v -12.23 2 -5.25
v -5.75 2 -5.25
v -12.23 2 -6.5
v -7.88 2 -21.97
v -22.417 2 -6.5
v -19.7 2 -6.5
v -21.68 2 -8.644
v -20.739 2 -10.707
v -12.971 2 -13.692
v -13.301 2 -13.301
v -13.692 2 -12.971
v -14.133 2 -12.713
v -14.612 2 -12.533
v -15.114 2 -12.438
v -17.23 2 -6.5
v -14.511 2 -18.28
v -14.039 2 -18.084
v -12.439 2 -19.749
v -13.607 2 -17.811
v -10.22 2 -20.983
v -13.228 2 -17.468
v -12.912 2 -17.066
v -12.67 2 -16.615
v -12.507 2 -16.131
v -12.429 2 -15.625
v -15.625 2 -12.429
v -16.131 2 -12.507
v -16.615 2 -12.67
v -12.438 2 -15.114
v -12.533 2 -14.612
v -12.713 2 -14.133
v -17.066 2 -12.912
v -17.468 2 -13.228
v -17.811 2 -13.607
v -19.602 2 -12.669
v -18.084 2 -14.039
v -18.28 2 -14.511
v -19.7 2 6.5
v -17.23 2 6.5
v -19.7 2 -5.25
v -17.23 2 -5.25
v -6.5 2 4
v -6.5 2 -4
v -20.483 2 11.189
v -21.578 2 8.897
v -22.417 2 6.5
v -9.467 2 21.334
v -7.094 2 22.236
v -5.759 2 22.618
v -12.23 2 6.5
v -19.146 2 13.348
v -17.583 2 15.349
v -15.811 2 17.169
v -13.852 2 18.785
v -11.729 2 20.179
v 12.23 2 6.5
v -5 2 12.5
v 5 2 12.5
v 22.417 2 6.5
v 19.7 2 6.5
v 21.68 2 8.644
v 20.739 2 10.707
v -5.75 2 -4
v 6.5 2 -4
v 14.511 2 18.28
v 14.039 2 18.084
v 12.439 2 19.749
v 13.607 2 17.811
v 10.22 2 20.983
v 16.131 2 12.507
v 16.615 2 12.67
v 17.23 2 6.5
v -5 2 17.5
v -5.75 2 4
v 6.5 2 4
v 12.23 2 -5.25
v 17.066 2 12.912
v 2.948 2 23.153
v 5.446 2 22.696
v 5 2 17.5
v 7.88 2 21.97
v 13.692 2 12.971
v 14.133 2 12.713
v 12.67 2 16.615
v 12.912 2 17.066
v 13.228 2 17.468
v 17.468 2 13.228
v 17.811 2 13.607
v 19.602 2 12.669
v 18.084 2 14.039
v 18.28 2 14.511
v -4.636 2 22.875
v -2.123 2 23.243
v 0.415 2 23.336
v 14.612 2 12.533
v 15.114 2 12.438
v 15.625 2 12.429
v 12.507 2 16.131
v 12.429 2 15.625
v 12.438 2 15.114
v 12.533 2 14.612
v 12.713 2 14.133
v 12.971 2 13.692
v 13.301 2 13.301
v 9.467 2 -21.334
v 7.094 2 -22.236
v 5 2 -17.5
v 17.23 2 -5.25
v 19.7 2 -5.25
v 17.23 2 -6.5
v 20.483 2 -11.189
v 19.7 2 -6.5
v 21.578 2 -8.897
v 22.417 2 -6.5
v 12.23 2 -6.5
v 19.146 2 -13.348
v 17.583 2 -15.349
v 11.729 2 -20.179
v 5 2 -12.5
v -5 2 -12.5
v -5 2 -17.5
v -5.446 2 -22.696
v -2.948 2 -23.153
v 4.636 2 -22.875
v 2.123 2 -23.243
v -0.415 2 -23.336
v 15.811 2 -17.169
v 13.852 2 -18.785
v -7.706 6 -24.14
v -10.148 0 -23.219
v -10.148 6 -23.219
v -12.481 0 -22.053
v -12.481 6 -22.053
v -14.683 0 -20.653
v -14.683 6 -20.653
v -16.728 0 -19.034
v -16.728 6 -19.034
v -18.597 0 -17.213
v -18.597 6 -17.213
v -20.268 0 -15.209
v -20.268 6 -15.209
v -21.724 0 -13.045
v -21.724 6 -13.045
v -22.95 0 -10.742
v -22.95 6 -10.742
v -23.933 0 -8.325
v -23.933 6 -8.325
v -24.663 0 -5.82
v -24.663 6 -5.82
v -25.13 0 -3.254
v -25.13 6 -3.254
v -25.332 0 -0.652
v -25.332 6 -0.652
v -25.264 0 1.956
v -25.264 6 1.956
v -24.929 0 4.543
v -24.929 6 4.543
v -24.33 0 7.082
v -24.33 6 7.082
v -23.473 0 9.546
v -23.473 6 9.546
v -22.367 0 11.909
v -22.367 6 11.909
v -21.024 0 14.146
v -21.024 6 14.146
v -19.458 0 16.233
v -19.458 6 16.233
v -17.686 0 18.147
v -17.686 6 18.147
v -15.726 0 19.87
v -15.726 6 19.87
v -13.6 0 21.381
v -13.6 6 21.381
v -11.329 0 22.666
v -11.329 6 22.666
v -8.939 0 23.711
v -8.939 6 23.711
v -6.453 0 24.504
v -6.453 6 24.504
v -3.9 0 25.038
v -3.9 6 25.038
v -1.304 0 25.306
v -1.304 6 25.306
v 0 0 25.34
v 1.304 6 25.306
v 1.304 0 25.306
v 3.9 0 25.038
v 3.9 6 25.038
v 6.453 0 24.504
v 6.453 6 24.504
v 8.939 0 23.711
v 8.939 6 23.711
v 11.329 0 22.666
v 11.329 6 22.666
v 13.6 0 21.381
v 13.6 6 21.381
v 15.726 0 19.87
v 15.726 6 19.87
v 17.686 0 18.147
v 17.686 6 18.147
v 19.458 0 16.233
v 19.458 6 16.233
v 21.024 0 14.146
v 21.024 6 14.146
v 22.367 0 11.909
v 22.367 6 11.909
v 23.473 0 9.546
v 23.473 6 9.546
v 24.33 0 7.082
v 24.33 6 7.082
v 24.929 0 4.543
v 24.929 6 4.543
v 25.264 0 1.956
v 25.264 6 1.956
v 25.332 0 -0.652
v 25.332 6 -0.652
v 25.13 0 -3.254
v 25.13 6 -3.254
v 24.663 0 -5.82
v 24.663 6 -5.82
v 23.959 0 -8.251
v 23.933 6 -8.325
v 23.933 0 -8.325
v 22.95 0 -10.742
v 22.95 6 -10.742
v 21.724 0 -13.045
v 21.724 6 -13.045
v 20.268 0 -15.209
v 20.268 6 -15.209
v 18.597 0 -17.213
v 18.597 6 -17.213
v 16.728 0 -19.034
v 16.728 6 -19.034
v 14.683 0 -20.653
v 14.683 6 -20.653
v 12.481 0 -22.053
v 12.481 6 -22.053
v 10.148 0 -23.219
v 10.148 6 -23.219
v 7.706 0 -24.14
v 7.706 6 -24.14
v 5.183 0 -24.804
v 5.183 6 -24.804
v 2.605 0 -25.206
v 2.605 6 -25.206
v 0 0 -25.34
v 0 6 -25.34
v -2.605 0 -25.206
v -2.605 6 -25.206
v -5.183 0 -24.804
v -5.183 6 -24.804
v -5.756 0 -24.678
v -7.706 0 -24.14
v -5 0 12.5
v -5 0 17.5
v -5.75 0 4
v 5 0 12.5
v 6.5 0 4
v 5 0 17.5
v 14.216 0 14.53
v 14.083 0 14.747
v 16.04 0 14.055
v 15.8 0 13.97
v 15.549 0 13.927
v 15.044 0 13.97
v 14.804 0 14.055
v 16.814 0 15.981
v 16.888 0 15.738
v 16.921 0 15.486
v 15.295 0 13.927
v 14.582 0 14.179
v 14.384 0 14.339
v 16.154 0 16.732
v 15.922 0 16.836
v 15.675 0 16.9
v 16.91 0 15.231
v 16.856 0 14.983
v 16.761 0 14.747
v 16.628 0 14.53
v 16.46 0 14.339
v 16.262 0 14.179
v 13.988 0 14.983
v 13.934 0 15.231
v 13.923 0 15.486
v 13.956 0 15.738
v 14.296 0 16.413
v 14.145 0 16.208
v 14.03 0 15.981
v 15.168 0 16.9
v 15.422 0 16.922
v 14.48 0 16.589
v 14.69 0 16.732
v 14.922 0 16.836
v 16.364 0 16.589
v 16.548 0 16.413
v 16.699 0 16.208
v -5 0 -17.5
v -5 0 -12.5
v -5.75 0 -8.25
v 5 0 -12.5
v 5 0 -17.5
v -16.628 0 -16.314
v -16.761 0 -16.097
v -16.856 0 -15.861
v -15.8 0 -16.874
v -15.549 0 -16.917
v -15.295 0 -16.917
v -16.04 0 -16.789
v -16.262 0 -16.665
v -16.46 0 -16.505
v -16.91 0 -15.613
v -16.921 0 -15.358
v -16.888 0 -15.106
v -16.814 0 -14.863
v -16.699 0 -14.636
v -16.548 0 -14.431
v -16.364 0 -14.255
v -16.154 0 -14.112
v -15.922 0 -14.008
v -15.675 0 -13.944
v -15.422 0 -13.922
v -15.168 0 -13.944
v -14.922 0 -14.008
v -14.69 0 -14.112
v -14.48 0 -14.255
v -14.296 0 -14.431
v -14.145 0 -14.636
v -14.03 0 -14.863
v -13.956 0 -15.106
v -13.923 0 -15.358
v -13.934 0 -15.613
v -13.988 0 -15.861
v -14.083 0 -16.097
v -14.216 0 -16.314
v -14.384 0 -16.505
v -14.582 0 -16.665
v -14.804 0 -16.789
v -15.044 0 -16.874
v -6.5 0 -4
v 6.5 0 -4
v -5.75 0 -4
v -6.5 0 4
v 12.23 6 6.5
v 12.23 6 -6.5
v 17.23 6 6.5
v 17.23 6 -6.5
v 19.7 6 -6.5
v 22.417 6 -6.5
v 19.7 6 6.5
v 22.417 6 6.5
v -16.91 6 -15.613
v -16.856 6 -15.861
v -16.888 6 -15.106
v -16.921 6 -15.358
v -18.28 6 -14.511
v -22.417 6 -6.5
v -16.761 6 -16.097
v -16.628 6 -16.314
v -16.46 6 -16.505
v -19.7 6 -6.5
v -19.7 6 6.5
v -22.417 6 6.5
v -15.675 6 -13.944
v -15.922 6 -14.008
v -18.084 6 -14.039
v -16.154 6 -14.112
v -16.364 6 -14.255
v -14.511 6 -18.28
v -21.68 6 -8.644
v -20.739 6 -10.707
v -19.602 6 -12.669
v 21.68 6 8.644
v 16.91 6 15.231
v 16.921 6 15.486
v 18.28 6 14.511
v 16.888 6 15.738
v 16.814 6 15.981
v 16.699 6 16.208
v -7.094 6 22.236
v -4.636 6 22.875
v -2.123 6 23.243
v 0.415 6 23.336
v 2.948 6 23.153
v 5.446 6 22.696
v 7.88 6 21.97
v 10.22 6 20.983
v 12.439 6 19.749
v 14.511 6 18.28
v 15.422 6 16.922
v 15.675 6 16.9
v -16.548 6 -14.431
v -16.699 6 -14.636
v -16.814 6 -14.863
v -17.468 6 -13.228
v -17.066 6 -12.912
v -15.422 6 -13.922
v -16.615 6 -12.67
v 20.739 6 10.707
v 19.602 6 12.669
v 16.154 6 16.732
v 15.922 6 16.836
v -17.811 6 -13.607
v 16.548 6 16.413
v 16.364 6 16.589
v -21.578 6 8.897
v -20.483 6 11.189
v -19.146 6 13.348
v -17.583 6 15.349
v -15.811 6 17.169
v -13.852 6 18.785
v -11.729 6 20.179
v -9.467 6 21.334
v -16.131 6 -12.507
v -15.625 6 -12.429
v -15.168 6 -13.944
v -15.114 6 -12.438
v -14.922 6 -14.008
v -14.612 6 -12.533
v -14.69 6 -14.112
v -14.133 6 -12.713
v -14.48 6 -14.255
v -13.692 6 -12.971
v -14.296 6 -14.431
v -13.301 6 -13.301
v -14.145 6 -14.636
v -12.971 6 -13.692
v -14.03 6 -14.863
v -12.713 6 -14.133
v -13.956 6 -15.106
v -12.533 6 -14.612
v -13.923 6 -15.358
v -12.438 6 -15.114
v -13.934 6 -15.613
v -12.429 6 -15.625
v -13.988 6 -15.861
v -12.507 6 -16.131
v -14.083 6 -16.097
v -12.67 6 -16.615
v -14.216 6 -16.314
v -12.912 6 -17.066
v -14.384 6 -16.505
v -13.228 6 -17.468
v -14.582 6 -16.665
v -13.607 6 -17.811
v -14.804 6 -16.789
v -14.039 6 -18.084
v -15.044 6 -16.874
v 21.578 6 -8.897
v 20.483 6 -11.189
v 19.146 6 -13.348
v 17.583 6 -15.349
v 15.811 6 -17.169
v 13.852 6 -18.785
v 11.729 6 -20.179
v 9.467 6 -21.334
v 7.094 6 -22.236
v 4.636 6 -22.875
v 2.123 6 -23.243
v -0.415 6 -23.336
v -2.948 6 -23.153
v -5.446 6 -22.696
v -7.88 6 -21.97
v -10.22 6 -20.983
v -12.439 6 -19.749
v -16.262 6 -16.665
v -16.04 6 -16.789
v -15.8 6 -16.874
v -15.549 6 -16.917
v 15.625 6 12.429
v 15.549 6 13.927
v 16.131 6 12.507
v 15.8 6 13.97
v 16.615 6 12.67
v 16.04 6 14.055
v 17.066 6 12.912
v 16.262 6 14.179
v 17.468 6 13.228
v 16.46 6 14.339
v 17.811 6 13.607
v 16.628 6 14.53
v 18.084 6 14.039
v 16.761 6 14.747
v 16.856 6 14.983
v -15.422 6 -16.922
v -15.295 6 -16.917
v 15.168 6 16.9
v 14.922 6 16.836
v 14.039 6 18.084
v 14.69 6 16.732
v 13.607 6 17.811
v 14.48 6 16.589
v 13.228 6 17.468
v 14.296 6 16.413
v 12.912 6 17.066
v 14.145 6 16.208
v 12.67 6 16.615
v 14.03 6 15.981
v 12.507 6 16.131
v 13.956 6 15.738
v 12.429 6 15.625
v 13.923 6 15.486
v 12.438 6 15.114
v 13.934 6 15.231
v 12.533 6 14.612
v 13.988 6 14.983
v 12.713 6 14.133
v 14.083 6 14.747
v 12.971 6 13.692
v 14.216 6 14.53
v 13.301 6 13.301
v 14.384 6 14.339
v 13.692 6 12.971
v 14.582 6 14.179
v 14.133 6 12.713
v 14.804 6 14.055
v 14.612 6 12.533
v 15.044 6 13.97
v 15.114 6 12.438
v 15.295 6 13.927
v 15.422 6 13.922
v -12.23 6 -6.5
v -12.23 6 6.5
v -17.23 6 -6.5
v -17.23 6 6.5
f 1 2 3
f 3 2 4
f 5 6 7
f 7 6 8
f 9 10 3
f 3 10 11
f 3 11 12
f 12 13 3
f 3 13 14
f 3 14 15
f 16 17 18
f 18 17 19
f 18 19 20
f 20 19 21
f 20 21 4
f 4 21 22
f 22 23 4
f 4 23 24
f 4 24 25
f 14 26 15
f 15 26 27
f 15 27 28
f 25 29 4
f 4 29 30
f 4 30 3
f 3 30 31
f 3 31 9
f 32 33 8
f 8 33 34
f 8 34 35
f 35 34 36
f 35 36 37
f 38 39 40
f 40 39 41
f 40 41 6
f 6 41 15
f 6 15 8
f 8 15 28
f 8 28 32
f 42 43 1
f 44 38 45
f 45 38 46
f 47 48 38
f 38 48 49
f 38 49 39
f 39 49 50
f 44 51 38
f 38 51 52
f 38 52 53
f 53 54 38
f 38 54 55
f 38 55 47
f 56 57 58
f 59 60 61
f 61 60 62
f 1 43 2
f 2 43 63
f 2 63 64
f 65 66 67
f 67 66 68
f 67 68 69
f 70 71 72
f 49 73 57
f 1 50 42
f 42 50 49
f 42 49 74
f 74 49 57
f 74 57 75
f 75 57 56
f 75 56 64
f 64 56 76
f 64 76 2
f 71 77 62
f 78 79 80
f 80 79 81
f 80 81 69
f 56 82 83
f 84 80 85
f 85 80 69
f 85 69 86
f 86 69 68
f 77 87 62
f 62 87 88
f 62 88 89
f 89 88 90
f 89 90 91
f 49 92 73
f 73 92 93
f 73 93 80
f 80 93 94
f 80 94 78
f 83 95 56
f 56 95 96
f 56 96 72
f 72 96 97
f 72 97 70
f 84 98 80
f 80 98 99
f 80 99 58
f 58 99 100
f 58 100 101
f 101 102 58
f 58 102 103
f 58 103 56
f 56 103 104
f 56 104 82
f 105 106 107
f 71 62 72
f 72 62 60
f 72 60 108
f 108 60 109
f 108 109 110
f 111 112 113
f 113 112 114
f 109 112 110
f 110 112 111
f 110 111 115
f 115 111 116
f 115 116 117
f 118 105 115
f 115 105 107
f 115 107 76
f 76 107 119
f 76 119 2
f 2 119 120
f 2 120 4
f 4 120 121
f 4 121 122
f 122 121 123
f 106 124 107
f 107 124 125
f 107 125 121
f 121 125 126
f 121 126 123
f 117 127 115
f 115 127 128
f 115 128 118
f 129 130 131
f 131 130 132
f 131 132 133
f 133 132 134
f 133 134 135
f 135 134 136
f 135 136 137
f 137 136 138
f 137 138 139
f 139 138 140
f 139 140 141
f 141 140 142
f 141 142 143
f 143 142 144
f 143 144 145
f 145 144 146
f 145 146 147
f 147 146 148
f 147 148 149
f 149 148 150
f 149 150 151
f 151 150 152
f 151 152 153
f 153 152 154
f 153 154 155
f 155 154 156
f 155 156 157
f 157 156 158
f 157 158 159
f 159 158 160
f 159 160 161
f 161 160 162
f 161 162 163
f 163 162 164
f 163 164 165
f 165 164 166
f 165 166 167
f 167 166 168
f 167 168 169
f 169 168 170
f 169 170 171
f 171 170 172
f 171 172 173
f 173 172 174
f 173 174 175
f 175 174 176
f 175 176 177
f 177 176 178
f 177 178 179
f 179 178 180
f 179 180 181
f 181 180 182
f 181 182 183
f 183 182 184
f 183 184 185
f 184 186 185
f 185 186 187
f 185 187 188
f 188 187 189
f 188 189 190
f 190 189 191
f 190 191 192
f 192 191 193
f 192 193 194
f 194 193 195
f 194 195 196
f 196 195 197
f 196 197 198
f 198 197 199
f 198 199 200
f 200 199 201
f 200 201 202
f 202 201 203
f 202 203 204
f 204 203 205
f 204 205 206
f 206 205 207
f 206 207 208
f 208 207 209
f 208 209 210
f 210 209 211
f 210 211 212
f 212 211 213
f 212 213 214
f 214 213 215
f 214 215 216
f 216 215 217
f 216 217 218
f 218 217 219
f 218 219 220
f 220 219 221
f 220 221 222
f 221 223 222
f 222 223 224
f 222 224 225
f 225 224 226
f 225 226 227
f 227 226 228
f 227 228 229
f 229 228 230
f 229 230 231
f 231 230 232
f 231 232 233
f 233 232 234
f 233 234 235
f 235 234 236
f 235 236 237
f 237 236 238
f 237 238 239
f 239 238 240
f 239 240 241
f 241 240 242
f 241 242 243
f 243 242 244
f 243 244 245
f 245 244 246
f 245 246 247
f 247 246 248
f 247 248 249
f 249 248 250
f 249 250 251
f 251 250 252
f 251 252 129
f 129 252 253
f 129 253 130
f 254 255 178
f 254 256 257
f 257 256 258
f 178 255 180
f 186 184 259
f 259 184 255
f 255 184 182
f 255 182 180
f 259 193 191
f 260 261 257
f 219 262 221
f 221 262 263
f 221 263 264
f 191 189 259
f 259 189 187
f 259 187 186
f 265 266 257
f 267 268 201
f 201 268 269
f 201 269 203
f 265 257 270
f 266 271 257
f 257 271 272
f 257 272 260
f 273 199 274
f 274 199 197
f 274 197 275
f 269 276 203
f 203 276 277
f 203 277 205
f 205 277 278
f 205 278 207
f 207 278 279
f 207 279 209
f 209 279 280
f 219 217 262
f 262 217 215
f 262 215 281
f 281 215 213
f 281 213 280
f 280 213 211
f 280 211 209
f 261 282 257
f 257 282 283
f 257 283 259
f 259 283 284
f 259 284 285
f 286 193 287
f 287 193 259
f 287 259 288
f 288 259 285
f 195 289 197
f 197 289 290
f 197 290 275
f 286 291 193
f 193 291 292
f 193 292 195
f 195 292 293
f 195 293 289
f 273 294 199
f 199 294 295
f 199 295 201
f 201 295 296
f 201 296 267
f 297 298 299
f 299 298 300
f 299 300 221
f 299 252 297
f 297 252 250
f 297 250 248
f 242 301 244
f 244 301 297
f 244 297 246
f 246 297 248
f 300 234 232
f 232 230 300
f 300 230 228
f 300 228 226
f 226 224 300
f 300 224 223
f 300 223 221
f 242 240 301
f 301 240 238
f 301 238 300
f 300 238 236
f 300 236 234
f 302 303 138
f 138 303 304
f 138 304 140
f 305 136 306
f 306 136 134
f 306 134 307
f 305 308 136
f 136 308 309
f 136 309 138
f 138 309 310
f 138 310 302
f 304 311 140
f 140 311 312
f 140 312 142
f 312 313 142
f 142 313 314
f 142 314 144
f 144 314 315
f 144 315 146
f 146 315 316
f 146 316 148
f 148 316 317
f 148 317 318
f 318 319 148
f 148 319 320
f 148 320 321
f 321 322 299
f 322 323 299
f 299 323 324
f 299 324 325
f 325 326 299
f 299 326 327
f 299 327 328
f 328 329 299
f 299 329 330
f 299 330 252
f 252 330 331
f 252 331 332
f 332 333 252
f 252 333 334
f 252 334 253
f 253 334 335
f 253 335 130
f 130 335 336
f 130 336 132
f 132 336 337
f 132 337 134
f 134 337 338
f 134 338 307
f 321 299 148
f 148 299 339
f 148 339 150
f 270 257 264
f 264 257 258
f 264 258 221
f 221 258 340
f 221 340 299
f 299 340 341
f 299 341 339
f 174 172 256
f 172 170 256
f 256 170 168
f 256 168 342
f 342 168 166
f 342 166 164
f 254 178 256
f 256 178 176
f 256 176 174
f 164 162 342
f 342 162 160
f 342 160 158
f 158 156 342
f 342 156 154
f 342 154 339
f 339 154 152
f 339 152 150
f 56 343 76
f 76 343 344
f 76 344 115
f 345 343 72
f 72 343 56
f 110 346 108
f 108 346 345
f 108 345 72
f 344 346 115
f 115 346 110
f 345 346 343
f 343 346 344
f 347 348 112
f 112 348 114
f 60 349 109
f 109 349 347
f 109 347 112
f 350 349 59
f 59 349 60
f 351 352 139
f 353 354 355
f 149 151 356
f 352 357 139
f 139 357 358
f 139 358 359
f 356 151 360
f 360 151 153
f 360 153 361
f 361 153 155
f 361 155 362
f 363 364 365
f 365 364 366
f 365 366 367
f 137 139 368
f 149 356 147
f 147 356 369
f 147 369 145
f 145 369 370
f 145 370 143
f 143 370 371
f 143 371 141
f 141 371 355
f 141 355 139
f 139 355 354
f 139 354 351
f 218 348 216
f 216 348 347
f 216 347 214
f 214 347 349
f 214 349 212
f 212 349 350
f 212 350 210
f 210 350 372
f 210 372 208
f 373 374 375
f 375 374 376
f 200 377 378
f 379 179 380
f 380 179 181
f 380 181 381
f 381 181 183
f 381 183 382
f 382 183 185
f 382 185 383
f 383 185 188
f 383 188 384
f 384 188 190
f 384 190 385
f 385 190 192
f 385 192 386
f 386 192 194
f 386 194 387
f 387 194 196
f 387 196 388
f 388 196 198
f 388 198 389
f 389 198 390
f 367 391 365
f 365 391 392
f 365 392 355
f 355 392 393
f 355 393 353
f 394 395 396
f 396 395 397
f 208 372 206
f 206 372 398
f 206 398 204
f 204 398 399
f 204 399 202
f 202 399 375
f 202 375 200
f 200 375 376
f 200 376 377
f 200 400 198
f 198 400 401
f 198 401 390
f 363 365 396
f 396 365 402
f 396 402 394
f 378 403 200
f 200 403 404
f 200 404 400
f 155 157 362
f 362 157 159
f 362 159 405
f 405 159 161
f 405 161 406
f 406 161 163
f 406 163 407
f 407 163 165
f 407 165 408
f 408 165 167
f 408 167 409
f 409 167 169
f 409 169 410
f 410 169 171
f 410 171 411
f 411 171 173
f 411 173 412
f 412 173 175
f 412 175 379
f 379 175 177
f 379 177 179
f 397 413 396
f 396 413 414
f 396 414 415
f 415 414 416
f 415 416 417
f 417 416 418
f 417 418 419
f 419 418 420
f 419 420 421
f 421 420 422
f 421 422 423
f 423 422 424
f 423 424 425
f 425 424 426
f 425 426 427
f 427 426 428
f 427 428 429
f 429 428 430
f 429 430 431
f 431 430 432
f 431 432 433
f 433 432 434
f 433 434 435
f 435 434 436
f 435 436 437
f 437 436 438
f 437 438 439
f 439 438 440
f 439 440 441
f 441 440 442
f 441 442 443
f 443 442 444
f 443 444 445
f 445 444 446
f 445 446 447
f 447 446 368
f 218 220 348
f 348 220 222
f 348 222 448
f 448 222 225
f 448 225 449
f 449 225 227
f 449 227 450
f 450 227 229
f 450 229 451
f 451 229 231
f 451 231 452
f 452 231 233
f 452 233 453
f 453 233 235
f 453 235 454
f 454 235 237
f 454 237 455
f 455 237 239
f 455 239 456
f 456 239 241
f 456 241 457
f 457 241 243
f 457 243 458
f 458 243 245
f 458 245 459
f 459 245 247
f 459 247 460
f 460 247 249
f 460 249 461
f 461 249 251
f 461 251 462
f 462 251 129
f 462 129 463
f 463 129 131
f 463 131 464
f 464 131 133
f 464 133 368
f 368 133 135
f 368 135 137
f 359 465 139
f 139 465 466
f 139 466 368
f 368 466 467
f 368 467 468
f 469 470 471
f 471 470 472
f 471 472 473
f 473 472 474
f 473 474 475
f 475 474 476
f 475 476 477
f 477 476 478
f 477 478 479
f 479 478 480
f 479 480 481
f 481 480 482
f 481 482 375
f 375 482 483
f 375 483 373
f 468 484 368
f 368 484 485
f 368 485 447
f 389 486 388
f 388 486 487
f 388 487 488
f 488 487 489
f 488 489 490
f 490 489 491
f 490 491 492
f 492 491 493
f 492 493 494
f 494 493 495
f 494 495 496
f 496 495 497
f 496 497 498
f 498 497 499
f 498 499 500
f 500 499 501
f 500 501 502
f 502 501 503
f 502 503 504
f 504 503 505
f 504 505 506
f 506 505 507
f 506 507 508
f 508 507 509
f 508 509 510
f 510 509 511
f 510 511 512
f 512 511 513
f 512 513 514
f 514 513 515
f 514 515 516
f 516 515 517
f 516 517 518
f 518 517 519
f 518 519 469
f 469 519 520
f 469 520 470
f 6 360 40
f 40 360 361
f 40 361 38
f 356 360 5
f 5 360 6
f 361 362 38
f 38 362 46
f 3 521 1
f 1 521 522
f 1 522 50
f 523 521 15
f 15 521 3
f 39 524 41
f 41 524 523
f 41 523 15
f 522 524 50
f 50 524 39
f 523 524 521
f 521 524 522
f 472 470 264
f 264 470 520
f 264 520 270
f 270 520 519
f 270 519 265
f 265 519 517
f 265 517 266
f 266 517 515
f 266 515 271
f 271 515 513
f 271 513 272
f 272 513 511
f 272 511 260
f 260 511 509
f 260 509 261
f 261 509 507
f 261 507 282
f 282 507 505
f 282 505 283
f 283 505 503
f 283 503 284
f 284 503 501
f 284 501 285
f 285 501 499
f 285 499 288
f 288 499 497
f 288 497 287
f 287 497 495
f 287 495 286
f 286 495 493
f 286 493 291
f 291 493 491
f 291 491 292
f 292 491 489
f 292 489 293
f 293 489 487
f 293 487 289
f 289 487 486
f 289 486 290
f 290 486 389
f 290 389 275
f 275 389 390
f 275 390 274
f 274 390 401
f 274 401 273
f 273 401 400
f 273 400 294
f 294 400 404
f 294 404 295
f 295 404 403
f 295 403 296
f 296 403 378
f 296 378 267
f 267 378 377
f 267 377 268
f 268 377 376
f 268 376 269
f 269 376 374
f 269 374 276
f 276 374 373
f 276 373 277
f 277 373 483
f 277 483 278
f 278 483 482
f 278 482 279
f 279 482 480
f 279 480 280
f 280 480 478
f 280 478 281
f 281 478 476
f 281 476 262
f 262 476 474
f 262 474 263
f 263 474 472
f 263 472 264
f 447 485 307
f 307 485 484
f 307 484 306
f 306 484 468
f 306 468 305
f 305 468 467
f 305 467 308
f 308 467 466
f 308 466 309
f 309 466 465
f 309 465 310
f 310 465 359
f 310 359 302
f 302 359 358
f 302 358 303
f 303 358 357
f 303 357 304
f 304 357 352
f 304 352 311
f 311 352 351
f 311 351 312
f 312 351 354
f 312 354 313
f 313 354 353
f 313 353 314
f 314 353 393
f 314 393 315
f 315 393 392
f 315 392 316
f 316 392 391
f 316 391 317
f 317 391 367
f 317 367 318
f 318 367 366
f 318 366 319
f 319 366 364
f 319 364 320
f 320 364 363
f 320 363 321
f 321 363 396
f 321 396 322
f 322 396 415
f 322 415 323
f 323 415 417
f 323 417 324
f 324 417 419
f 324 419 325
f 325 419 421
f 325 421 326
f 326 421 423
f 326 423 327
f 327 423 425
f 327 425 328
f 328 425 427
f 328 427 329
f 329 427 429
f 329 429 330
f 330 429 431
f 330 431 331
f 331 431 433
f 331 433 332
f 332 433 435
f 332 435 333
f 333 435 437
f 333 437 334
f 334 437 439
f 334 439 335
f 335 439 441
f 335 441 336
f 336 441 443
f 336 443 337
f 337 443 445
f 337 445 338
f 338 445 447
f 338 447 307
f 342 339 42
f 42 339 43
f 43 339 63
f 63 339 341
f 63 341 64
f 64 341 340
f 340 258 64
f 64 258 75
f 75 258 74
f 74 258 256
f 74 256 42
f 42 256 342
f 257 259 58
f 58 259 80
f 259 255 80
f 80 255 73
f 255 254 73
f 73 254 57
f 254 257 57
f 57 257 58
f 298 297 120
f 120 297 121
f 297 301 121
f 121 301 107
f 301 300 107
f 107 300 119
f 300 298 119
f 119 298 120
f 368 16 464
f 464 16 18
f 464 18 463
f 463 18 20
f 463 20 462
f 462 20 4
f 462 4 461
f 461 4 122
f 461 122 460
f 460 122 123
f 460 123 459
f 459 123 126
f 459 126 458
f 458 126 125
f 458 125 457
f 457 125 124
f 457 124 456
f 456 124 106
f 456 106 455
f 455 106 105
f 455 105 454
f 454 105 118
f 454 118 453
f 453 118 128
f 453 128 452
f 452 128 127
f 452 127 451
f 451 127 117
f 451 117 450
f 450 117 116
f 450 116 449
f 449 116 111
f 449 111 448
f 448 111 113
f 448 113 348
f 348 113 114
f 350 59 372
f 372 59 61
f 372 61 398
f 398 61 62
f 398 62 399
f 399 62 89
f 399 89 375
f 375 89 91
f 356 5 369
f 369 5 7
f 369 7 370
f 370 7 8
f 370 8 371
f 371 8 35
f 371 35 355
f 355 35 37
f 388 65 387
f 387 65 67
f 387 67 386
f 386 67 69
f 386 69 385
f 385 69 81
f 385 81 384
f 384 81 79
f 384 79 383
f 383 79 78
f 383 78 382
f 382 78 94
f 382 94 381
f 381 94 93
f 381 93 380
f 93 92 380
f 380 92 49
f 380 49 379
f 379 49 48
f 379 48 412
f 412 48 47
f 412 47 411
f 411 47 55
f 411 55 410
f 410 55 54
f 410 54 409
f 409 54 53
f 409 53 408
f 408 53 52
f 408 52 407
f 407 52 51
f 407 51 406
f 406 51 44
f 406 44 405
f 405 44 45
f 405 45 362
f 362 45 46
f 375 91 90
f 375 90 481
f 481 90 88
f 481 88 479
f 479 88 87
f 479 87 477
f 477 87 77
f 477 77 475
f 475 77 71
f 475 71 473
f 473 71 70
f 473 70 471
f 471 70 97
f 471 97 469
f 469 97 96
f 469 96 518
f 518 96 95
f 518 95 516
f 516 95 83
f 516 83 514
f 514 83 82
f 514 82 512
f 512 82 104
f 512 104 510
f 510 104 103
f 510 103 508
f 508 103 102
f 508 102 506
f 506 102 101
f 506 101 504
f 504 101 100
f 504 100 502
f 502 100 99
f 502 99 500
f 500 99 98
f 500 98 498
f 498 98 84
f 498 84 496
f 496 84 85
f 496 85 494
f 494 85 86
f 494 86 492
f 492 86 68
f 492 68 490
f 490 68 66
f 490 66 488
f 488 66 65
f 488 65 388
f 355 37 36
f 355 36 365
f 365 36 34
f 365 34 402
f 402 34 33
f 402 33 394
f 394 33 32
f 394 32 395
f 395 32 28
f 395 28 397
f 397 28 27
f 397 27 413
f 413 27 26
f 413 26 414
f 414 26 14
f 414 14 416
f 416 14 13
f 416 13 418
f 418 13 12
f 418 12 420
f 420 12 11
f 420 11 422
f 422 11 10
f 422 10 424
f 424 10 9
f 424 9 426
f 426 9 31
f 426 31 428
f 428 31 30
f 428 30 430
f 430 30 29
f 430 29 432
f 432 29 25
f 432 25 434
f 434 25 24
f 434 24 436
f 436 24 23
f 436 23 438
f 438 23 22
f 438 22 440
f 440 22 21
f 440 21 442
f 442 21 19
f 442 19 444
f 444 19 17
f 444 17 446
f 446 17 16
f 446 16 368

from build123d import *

# Parameters (mm, degrees)
SKETCH1_R           = 25.34
BOSS_EXTRUDE1_DEPTH = 2
SKETCH2_W           = 5
SKETCH2_H           = 13
BOSS_EXTRUDE2_DEPTH = 4
SKETCH3_R           = 1.5
CUT_EXTRUDE1_DEPTH  = 3
SKETCH4_W           = 10
SKETCH4_H           = 5
SKETCH4_W_2         = 13
SKETCH4_H_2         = 8
CUT_EXTRUDE2_DEPTH  = 3
SKETCH7_R           = 25.34
SKETCH7_R_2         = 1.5
BOSS_EXTRUDE3_DEPTH = 4


with BuildPart() as part:
    # Sketch1 → Boss-Extrude1 (new body)
    with BuildSketch(Plane(origin=(0, 0, 0), x_dir=(1, 0, 0), z_dir=(0, 1, 0))):
        Circle(SKETCH1_R)
    extrude(amount=BOSS_EXTRUDE1_DEPTH)

    # Sketch2 → Boss-Extrude2 (add)
    with BuildSketch(Plane(origin=(0, 2, 0), x_dir=(1, 0, 0), z_dir=(0, 1, 0))):
        with Locations((14.73, 0)):
            Rectangle(SKETCH2_W, SKETCH2_H)
        with BuildLine():
            Line((22.416636679, 6.5), (19.7, 6.5))
            Line((19.7, 6.5), (19.7, -6.5))
            Line((19.7, -6.5), (22.416636679, -6.5))
            ThreePointArc((22.416636679, -6.5), (23.34, 0), (22.416636679, 6.5))
        make_face()
        with BuildLine():
            Line((-19.7, -6.5), (-22.416636679, -6.5))
            ThreePointArc((-22.416636679, -6.5), (-23.34, 0), (-22.416636679, 6.5))
            Line((-22.416636679, 6.5), (-19.7, 6.5))
            Line((-19.7, 6.5), (-19.7, -6.5))
        make_face()
        with Locations((-14.73, 0)):
            Rectangle(SKETCH2_W, SKETCH2_H)
    extrude(amount=BOSS_EXTRUDE2_DEPTH)

    # Sketch3 → Cut-Extrude1 (cut, through all)
    with BuildSketch(Plane(origin=(0, 2, 0), x_dir=(1, 0, 0), z_dir=(0, 1, 0))):
        with Locations((-15.421998898, 15.421998898)):
            Circle(SKETCH3_R)
        with Locations((15.421998898, -15.421998898)):
            Circle(SKETCH3_R)
    extrude(amount=-CUT_EXTRUDE1_DEPTH, mode=Mode.SUBTRACT)

    # Sketch4 → Cut-Extrude2 (cut, through all)
    with BuildSketch(Plane(origin=(0, 2, 0), x_dir=(1, 0, 0), z_dir=(0, 1, 0))):
        with Locations((0, 15)):
            Rectangle(SKETCH4_W, SKETCH4_H)
        with Locations((0, -15)):
            Rectangle(SKETCH4_W, SKETCH4_H)
        Rectangle(SKETCH4_W_2, SKETCH4_H_2)
    extrude(amount=-CUT_EXTRUDE2_DEPTH, mode=Mode.SUBTRACT)

    # Sketch7 → Boss-Extrude3 (add)
    with BuildSketch(Plane(origin=(0, 2, 0), x_dir=(1, 0, 0), z_dir=(0, 1, 0))):
        Circle(SKETCH7_R)
        with Locations((-15.421998898, 15.421998898)):
            Circle(SKETCH7_R_2, mode=Mode.SUBTRACT)
        with Locations((15.421998898, -15.421998898)):
            Circle(SKETCH7_R_2, mode=Mode.SUBTRACT)
        with BuildLine():
            ThreePointArc((18.280458496, -14.511389912), (13.300678554, -13.300678554), (14.511389912, -18.280458496))
            ThreePointArc((14.511389912, -18.280458496), (-16.503872273, -16.503872273), (-18.280458496, 14.511389912))
            ThreePointArc((-18.280458496, 14.511389912), (-13.300678554, 13.300678554), (-14.511389912, 18.280458496))
            ThreePointArc((-14.511389912, 18.280458496), (16.503872273, 16.503872273), (18.280458496, -14.511389912))
        make_face(mode=Mode.SUBTRACT)
    extrude(amount=BOSS_EXTRUDE3_DEPTH)


solid = part.part
